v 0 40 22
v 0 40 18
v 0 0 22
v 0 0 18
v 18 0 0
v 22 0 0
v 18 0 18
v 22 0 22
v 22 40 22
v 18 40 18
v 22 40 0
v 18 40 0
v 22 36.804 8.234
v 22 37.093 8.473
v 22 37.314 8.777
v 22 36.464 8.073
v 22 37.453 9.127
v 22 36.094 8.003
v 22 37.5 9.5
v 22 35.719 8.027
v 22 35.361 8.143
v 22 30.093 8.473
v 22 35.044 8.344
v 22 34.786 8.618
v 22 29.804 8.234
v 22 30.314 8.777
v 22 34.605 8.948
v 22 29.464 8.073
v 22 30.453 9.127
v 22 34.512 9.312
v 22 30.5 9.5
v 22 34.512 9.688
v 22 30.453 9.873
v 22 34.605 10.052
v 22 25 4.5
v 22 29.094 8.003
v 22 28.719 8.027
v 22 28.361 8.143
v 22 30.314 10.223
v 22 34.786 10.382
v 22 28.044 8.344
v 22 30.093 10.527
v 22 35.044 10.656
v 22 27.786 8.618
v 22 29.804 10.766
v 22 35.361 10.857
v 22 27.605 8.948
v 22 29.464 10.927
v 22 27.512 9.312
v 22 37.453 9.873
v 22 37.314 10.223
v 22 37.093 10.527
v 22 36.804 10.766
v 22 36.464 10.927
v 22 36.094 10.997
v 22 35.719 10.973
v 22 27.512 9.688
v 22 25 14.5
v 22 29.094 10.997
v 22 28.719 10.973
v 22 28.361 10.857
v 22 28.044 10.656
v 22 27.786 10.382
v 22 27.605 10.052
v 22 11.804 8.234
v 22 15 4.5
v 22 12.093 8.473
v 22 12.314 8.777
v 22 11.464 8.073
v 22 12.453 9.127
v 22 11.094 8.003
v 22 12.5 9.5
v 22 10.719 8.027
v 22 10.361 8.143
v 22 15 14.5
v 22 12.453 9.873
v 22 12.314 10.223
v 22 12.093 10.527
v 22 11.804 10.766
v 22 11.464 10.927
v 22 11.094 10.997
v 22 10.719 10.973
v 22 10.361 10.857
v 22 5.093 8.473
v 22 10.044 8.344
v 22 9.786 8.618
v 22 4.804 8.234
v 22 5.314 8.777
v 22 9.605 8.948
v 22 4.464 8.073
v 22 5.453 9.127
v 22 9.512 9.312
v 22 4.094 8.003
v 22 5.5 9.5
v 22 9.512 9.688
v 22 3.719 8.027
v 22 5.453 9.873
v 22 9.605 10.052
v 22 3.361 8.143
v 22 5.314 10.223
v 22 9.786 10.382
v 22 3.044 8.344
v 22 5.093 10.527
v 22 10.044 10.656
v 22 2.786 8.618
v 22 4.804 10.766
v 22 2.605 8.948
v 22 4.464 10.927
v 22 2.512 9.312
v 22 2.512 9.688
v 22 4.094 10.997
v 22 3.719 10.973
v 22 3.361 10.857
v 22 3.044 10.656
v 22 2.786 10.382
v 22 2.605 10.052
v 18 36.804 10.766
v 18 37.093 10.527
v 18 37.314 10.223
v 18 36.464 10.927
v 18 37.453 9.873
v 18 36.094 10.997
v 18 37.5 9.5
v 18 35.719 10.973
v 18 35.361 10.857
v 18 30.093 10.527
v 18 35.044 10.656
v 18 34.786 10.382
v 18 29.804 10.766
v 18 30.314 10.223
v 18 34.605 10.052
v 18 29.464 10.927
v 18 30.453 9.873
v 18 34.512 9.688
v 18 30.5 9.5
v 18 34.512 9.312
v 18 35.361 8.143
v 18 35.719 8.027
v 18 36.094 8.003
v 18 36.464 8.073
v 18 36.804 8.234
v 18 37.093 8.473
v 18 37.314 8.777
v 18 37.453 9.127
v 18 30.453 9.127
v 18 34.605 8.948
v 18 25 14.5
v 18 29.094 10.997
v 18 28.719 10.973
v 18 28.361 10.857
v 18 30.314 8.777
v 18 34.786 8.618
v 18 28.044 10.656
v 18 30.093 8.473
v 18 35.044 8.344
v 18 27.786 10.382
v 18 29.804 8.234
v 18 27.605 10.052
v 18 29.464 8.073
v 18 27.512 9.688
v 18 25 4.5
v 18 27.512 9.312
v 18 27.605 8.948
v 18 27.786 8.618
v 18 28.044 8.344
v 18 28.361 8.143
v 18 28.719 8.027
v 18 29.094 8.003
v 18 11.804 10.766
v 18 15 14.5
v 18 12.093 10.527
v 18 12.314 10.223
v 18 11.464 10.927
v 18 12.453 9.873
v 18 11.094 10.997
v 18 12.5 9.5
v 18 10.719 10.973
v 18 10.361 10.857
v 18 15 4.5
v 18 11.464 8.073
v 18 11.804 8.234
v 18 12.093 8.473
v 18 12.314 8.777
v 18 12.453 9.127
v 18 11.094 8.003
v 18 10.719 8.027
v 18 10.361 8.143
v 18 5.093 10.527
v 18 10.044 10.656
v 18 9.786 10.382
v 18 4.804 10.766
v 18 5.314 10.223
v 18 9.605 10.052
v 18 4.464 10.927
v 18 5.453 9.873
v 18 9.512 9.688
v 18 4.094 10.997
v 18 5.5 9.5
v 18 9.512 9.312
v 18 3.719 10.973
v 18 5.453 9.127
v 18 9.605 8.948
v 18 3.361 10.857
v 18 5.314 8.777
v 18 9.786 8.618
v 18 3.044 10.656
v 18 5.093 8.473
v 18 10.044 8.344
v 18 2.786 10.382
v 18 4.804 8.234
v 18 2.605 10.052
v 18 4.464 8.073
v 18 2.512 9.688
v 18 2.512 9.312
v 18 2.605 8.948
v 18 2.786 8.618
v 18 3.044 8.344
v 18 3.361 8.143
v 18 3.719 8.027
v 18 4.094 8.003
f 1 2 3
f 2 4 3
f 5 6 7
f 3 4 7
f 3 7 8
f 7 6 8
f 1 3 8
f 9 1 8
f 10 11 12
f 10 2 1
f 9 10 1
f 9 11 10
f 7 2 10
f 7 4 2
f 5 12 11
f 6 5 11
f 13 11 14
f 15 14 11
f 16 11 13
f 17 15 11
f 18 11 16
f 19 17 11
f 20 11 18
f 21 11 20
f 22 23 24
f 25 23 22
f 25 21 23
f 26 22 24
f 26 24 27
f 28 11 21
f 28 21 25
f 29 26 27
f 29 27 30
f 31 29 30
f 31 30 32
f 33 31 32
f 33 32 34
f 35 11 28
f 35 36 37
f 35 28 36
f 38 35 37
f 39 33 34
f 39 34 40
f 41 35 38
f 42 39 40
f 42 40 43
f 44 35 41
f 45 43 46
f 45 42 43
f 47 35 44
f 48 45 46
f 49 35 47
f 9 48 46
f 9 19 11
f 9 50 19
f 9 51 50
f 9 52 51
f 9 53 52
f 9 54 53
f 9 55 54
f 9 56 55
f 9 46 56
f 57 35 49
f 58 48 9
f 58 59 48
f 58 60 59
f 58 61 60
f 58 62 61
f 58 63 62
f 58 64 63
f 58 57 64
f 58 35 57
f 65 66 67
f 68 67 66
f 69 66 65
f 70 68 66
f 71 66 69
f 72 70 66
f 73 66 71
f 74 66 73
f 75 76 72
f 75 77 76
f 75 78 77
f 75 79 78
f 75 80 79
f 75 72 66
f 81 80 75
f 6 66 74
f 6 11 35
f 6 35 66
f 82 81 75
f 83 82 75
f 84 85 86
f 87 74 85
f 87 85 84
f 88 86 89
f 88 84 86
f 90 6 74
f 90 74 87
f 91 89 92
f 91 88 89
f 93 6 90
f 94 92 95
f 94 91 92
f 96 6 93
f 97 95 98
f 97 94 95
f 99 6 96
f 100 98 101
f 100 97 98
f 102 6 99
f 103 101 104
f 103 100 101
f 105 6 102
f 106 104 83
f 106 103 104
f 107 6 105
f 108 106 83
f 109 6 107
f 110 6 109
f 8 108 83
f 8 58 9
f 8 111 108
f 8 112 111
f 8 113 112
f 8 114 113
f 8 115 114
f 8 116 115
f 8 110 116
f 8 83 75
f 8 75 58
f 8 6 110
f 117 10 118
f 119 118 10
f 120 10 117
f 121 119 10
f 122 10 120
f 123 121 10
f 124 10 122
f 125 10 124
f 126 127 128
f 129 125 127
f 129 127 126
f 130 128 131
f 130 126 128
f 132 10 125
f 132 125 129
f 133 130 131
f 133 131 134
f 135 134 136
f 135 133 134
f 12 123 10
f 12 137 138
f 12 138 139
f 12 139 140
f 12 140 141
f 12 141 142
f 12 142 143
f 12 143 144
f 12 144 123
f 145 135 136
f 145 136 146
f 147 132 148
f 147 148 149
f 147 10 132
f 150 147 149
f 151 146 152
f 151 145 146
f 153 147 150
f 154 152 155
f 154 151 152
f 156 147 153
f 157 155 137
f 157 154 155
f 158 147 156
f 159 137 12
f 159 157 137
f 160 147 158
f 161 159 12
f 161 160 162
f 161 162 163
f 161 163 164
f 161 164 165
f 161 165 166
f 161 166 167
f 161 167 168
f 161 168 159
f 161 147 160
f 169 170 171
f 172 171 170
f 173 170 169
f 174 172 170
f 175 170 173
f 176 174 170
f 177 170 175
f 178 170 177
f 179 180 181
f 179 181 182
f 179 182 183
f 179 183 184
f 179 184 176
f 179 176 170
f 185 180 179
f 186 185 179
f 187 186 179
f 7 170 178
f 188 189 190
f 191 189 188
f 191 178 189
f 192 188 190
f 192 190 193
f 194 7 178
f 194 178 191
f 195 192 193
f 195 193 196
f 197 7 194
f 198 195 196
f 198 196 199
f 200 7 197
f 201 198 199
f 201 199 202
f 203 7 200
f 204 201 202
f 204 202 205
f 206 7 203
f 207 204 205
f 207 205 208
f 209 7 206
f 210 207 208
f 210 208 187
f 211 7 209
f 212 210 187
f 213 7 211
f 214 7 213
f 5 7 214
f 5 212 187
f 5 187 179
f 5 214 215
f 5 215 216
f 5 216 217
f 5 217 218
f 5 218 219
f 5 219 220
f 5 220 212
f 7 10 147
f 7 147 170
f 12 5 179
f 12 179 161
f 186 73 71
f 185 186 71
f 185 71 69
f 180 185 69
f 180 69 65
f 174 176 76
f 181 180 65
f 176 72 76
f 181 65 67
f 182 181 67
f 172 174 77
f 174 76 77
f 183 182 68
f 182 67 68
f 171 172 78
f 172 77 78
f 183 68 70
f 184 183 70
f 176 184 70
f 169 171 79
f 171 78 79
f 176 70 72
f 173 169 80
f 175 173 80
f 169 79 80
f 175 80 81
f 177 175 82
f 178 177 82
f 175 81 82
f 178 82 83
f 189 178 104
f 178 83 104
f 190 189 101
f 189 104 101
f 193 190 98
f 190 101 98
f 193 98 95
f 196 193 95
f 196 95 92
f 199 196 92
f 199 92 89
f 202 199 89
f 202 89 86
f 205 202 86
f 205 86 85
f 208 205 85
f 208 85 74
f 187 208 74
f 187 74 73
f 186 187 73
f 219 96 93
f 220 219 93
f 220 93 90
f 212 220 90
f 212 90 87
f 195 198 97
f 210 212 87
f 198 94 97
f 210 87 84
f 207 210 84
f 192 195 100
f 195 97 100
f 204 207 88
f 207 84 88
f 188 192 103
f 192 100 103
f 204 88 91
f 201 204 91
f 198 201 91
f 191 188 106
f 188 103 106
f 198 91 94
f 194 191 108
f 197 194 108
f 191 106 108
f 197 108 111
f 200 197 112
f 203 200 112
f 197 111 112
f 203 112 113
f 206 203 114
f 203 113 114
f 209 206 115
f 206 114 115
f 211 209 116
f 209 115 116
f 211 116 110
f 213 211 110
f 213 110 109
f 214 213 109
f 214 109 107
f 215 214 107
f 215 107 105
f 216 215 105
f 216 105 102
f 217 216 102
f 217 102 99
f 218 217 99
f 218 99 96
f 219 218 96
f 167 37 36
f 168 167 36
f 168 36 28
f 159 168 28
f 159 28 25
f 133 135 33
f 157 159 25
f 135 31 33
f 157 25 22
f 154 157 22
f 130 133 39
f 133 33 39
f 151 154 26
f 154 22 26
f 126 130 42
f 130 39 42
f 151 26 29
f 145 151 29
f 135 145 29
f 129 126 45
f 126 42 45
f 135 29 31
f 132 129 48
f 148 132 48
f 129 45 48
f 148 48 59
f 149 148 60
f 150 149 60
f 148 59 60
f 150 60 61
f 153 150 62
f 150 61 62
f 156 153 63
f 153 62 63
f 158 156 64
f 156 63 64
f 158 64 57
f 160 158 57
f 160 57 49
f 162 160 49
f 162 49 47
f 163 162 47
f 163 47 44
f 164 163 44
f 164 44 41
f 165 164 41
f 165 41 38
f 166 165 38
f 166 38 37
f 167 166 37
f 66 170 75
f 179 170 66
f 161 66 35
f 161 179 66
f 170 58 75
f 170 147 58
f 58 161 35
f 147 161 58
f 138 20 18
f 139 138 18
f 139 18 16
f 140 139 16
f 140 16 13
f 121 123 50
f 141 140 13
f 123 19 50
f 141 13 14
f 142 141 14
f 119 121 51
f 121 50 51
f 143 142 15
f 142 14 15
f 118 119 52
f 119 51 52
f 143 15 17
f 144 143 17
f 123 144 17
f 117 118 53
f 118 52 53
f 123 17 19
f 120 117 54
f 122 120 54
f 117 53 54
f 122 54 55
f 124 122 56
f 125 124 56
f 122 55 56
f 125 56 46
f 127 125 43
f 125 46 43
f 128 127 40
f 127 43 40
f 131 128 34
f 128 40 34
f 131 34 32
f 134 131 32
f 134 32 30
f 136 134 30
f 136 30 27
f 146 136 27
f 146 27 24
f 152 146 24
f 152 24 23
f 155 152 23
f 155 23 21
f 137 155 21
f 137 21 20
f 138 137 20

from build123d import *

# Parameters (mm, degrees)
BOX_W           = 22
BOX_H           = 40
BOX_DEPTH       = 22
SKETCH_W        = 18
SKETCH_H        = 18
POCKET_DEPTH    = 40.001
SKETCH001_W     = 10
SKETCH001_H     = 10
POCKET001_DEPTH = 4.001
SKETCH002_R     = 1.5
POCKET002_DEPTH = 22.001


with BuildPart() as part:
    # Box → Box (new body)
    with BuildSketch(Plane.XY):
        with Locations((11, 20)):
            Rectangle(BOX_W, BOX_H)
    extrude(amount=BOX_DEPTH)

    # Sketch → Pocket (cut, through all)
    with BuildSketch(Plane.XZ):
        with Locations((9, 9)):
            Rectangle(SKETCH_W, SKETCH_H)
    extrude(amount=-POCKET_DEPTH, mode=Mode.SUBTRACT)

    # Sketch001 → Pocket001 (cut, through all)
    with BuildSketch(Plane(origin=(18, 0, 0), x_dir=(0, -1, 0), z_dir=(-1, 0, 0))):
        with Locations((-20, 9.5)):
            Rectangle(SKETCH001_W, SKETCH001_H)
    extrude(amount=-POCKET001_DEPTH, mode=Mode.SUBTRACT)

    # Sketch002 → Pocket002 (cut, through all)
    with BuildSketch(Plane.YZ.offset(22)):
        with Locations((4, 9.5)):
            Circle(SKETCH002_R)
        with Locations((11, 9.5)):
            Circle(SKETCH002_R)
        with Locations((29, 9.5)):
            Circle(SKETCH002_R)
        with Locations((36, 9.5)):
            Circle(SKETCH002_R)
    extrude(amount=-POCKET002_DEPTH, mode=Mode.SUBTRACT)


solid = part.part
